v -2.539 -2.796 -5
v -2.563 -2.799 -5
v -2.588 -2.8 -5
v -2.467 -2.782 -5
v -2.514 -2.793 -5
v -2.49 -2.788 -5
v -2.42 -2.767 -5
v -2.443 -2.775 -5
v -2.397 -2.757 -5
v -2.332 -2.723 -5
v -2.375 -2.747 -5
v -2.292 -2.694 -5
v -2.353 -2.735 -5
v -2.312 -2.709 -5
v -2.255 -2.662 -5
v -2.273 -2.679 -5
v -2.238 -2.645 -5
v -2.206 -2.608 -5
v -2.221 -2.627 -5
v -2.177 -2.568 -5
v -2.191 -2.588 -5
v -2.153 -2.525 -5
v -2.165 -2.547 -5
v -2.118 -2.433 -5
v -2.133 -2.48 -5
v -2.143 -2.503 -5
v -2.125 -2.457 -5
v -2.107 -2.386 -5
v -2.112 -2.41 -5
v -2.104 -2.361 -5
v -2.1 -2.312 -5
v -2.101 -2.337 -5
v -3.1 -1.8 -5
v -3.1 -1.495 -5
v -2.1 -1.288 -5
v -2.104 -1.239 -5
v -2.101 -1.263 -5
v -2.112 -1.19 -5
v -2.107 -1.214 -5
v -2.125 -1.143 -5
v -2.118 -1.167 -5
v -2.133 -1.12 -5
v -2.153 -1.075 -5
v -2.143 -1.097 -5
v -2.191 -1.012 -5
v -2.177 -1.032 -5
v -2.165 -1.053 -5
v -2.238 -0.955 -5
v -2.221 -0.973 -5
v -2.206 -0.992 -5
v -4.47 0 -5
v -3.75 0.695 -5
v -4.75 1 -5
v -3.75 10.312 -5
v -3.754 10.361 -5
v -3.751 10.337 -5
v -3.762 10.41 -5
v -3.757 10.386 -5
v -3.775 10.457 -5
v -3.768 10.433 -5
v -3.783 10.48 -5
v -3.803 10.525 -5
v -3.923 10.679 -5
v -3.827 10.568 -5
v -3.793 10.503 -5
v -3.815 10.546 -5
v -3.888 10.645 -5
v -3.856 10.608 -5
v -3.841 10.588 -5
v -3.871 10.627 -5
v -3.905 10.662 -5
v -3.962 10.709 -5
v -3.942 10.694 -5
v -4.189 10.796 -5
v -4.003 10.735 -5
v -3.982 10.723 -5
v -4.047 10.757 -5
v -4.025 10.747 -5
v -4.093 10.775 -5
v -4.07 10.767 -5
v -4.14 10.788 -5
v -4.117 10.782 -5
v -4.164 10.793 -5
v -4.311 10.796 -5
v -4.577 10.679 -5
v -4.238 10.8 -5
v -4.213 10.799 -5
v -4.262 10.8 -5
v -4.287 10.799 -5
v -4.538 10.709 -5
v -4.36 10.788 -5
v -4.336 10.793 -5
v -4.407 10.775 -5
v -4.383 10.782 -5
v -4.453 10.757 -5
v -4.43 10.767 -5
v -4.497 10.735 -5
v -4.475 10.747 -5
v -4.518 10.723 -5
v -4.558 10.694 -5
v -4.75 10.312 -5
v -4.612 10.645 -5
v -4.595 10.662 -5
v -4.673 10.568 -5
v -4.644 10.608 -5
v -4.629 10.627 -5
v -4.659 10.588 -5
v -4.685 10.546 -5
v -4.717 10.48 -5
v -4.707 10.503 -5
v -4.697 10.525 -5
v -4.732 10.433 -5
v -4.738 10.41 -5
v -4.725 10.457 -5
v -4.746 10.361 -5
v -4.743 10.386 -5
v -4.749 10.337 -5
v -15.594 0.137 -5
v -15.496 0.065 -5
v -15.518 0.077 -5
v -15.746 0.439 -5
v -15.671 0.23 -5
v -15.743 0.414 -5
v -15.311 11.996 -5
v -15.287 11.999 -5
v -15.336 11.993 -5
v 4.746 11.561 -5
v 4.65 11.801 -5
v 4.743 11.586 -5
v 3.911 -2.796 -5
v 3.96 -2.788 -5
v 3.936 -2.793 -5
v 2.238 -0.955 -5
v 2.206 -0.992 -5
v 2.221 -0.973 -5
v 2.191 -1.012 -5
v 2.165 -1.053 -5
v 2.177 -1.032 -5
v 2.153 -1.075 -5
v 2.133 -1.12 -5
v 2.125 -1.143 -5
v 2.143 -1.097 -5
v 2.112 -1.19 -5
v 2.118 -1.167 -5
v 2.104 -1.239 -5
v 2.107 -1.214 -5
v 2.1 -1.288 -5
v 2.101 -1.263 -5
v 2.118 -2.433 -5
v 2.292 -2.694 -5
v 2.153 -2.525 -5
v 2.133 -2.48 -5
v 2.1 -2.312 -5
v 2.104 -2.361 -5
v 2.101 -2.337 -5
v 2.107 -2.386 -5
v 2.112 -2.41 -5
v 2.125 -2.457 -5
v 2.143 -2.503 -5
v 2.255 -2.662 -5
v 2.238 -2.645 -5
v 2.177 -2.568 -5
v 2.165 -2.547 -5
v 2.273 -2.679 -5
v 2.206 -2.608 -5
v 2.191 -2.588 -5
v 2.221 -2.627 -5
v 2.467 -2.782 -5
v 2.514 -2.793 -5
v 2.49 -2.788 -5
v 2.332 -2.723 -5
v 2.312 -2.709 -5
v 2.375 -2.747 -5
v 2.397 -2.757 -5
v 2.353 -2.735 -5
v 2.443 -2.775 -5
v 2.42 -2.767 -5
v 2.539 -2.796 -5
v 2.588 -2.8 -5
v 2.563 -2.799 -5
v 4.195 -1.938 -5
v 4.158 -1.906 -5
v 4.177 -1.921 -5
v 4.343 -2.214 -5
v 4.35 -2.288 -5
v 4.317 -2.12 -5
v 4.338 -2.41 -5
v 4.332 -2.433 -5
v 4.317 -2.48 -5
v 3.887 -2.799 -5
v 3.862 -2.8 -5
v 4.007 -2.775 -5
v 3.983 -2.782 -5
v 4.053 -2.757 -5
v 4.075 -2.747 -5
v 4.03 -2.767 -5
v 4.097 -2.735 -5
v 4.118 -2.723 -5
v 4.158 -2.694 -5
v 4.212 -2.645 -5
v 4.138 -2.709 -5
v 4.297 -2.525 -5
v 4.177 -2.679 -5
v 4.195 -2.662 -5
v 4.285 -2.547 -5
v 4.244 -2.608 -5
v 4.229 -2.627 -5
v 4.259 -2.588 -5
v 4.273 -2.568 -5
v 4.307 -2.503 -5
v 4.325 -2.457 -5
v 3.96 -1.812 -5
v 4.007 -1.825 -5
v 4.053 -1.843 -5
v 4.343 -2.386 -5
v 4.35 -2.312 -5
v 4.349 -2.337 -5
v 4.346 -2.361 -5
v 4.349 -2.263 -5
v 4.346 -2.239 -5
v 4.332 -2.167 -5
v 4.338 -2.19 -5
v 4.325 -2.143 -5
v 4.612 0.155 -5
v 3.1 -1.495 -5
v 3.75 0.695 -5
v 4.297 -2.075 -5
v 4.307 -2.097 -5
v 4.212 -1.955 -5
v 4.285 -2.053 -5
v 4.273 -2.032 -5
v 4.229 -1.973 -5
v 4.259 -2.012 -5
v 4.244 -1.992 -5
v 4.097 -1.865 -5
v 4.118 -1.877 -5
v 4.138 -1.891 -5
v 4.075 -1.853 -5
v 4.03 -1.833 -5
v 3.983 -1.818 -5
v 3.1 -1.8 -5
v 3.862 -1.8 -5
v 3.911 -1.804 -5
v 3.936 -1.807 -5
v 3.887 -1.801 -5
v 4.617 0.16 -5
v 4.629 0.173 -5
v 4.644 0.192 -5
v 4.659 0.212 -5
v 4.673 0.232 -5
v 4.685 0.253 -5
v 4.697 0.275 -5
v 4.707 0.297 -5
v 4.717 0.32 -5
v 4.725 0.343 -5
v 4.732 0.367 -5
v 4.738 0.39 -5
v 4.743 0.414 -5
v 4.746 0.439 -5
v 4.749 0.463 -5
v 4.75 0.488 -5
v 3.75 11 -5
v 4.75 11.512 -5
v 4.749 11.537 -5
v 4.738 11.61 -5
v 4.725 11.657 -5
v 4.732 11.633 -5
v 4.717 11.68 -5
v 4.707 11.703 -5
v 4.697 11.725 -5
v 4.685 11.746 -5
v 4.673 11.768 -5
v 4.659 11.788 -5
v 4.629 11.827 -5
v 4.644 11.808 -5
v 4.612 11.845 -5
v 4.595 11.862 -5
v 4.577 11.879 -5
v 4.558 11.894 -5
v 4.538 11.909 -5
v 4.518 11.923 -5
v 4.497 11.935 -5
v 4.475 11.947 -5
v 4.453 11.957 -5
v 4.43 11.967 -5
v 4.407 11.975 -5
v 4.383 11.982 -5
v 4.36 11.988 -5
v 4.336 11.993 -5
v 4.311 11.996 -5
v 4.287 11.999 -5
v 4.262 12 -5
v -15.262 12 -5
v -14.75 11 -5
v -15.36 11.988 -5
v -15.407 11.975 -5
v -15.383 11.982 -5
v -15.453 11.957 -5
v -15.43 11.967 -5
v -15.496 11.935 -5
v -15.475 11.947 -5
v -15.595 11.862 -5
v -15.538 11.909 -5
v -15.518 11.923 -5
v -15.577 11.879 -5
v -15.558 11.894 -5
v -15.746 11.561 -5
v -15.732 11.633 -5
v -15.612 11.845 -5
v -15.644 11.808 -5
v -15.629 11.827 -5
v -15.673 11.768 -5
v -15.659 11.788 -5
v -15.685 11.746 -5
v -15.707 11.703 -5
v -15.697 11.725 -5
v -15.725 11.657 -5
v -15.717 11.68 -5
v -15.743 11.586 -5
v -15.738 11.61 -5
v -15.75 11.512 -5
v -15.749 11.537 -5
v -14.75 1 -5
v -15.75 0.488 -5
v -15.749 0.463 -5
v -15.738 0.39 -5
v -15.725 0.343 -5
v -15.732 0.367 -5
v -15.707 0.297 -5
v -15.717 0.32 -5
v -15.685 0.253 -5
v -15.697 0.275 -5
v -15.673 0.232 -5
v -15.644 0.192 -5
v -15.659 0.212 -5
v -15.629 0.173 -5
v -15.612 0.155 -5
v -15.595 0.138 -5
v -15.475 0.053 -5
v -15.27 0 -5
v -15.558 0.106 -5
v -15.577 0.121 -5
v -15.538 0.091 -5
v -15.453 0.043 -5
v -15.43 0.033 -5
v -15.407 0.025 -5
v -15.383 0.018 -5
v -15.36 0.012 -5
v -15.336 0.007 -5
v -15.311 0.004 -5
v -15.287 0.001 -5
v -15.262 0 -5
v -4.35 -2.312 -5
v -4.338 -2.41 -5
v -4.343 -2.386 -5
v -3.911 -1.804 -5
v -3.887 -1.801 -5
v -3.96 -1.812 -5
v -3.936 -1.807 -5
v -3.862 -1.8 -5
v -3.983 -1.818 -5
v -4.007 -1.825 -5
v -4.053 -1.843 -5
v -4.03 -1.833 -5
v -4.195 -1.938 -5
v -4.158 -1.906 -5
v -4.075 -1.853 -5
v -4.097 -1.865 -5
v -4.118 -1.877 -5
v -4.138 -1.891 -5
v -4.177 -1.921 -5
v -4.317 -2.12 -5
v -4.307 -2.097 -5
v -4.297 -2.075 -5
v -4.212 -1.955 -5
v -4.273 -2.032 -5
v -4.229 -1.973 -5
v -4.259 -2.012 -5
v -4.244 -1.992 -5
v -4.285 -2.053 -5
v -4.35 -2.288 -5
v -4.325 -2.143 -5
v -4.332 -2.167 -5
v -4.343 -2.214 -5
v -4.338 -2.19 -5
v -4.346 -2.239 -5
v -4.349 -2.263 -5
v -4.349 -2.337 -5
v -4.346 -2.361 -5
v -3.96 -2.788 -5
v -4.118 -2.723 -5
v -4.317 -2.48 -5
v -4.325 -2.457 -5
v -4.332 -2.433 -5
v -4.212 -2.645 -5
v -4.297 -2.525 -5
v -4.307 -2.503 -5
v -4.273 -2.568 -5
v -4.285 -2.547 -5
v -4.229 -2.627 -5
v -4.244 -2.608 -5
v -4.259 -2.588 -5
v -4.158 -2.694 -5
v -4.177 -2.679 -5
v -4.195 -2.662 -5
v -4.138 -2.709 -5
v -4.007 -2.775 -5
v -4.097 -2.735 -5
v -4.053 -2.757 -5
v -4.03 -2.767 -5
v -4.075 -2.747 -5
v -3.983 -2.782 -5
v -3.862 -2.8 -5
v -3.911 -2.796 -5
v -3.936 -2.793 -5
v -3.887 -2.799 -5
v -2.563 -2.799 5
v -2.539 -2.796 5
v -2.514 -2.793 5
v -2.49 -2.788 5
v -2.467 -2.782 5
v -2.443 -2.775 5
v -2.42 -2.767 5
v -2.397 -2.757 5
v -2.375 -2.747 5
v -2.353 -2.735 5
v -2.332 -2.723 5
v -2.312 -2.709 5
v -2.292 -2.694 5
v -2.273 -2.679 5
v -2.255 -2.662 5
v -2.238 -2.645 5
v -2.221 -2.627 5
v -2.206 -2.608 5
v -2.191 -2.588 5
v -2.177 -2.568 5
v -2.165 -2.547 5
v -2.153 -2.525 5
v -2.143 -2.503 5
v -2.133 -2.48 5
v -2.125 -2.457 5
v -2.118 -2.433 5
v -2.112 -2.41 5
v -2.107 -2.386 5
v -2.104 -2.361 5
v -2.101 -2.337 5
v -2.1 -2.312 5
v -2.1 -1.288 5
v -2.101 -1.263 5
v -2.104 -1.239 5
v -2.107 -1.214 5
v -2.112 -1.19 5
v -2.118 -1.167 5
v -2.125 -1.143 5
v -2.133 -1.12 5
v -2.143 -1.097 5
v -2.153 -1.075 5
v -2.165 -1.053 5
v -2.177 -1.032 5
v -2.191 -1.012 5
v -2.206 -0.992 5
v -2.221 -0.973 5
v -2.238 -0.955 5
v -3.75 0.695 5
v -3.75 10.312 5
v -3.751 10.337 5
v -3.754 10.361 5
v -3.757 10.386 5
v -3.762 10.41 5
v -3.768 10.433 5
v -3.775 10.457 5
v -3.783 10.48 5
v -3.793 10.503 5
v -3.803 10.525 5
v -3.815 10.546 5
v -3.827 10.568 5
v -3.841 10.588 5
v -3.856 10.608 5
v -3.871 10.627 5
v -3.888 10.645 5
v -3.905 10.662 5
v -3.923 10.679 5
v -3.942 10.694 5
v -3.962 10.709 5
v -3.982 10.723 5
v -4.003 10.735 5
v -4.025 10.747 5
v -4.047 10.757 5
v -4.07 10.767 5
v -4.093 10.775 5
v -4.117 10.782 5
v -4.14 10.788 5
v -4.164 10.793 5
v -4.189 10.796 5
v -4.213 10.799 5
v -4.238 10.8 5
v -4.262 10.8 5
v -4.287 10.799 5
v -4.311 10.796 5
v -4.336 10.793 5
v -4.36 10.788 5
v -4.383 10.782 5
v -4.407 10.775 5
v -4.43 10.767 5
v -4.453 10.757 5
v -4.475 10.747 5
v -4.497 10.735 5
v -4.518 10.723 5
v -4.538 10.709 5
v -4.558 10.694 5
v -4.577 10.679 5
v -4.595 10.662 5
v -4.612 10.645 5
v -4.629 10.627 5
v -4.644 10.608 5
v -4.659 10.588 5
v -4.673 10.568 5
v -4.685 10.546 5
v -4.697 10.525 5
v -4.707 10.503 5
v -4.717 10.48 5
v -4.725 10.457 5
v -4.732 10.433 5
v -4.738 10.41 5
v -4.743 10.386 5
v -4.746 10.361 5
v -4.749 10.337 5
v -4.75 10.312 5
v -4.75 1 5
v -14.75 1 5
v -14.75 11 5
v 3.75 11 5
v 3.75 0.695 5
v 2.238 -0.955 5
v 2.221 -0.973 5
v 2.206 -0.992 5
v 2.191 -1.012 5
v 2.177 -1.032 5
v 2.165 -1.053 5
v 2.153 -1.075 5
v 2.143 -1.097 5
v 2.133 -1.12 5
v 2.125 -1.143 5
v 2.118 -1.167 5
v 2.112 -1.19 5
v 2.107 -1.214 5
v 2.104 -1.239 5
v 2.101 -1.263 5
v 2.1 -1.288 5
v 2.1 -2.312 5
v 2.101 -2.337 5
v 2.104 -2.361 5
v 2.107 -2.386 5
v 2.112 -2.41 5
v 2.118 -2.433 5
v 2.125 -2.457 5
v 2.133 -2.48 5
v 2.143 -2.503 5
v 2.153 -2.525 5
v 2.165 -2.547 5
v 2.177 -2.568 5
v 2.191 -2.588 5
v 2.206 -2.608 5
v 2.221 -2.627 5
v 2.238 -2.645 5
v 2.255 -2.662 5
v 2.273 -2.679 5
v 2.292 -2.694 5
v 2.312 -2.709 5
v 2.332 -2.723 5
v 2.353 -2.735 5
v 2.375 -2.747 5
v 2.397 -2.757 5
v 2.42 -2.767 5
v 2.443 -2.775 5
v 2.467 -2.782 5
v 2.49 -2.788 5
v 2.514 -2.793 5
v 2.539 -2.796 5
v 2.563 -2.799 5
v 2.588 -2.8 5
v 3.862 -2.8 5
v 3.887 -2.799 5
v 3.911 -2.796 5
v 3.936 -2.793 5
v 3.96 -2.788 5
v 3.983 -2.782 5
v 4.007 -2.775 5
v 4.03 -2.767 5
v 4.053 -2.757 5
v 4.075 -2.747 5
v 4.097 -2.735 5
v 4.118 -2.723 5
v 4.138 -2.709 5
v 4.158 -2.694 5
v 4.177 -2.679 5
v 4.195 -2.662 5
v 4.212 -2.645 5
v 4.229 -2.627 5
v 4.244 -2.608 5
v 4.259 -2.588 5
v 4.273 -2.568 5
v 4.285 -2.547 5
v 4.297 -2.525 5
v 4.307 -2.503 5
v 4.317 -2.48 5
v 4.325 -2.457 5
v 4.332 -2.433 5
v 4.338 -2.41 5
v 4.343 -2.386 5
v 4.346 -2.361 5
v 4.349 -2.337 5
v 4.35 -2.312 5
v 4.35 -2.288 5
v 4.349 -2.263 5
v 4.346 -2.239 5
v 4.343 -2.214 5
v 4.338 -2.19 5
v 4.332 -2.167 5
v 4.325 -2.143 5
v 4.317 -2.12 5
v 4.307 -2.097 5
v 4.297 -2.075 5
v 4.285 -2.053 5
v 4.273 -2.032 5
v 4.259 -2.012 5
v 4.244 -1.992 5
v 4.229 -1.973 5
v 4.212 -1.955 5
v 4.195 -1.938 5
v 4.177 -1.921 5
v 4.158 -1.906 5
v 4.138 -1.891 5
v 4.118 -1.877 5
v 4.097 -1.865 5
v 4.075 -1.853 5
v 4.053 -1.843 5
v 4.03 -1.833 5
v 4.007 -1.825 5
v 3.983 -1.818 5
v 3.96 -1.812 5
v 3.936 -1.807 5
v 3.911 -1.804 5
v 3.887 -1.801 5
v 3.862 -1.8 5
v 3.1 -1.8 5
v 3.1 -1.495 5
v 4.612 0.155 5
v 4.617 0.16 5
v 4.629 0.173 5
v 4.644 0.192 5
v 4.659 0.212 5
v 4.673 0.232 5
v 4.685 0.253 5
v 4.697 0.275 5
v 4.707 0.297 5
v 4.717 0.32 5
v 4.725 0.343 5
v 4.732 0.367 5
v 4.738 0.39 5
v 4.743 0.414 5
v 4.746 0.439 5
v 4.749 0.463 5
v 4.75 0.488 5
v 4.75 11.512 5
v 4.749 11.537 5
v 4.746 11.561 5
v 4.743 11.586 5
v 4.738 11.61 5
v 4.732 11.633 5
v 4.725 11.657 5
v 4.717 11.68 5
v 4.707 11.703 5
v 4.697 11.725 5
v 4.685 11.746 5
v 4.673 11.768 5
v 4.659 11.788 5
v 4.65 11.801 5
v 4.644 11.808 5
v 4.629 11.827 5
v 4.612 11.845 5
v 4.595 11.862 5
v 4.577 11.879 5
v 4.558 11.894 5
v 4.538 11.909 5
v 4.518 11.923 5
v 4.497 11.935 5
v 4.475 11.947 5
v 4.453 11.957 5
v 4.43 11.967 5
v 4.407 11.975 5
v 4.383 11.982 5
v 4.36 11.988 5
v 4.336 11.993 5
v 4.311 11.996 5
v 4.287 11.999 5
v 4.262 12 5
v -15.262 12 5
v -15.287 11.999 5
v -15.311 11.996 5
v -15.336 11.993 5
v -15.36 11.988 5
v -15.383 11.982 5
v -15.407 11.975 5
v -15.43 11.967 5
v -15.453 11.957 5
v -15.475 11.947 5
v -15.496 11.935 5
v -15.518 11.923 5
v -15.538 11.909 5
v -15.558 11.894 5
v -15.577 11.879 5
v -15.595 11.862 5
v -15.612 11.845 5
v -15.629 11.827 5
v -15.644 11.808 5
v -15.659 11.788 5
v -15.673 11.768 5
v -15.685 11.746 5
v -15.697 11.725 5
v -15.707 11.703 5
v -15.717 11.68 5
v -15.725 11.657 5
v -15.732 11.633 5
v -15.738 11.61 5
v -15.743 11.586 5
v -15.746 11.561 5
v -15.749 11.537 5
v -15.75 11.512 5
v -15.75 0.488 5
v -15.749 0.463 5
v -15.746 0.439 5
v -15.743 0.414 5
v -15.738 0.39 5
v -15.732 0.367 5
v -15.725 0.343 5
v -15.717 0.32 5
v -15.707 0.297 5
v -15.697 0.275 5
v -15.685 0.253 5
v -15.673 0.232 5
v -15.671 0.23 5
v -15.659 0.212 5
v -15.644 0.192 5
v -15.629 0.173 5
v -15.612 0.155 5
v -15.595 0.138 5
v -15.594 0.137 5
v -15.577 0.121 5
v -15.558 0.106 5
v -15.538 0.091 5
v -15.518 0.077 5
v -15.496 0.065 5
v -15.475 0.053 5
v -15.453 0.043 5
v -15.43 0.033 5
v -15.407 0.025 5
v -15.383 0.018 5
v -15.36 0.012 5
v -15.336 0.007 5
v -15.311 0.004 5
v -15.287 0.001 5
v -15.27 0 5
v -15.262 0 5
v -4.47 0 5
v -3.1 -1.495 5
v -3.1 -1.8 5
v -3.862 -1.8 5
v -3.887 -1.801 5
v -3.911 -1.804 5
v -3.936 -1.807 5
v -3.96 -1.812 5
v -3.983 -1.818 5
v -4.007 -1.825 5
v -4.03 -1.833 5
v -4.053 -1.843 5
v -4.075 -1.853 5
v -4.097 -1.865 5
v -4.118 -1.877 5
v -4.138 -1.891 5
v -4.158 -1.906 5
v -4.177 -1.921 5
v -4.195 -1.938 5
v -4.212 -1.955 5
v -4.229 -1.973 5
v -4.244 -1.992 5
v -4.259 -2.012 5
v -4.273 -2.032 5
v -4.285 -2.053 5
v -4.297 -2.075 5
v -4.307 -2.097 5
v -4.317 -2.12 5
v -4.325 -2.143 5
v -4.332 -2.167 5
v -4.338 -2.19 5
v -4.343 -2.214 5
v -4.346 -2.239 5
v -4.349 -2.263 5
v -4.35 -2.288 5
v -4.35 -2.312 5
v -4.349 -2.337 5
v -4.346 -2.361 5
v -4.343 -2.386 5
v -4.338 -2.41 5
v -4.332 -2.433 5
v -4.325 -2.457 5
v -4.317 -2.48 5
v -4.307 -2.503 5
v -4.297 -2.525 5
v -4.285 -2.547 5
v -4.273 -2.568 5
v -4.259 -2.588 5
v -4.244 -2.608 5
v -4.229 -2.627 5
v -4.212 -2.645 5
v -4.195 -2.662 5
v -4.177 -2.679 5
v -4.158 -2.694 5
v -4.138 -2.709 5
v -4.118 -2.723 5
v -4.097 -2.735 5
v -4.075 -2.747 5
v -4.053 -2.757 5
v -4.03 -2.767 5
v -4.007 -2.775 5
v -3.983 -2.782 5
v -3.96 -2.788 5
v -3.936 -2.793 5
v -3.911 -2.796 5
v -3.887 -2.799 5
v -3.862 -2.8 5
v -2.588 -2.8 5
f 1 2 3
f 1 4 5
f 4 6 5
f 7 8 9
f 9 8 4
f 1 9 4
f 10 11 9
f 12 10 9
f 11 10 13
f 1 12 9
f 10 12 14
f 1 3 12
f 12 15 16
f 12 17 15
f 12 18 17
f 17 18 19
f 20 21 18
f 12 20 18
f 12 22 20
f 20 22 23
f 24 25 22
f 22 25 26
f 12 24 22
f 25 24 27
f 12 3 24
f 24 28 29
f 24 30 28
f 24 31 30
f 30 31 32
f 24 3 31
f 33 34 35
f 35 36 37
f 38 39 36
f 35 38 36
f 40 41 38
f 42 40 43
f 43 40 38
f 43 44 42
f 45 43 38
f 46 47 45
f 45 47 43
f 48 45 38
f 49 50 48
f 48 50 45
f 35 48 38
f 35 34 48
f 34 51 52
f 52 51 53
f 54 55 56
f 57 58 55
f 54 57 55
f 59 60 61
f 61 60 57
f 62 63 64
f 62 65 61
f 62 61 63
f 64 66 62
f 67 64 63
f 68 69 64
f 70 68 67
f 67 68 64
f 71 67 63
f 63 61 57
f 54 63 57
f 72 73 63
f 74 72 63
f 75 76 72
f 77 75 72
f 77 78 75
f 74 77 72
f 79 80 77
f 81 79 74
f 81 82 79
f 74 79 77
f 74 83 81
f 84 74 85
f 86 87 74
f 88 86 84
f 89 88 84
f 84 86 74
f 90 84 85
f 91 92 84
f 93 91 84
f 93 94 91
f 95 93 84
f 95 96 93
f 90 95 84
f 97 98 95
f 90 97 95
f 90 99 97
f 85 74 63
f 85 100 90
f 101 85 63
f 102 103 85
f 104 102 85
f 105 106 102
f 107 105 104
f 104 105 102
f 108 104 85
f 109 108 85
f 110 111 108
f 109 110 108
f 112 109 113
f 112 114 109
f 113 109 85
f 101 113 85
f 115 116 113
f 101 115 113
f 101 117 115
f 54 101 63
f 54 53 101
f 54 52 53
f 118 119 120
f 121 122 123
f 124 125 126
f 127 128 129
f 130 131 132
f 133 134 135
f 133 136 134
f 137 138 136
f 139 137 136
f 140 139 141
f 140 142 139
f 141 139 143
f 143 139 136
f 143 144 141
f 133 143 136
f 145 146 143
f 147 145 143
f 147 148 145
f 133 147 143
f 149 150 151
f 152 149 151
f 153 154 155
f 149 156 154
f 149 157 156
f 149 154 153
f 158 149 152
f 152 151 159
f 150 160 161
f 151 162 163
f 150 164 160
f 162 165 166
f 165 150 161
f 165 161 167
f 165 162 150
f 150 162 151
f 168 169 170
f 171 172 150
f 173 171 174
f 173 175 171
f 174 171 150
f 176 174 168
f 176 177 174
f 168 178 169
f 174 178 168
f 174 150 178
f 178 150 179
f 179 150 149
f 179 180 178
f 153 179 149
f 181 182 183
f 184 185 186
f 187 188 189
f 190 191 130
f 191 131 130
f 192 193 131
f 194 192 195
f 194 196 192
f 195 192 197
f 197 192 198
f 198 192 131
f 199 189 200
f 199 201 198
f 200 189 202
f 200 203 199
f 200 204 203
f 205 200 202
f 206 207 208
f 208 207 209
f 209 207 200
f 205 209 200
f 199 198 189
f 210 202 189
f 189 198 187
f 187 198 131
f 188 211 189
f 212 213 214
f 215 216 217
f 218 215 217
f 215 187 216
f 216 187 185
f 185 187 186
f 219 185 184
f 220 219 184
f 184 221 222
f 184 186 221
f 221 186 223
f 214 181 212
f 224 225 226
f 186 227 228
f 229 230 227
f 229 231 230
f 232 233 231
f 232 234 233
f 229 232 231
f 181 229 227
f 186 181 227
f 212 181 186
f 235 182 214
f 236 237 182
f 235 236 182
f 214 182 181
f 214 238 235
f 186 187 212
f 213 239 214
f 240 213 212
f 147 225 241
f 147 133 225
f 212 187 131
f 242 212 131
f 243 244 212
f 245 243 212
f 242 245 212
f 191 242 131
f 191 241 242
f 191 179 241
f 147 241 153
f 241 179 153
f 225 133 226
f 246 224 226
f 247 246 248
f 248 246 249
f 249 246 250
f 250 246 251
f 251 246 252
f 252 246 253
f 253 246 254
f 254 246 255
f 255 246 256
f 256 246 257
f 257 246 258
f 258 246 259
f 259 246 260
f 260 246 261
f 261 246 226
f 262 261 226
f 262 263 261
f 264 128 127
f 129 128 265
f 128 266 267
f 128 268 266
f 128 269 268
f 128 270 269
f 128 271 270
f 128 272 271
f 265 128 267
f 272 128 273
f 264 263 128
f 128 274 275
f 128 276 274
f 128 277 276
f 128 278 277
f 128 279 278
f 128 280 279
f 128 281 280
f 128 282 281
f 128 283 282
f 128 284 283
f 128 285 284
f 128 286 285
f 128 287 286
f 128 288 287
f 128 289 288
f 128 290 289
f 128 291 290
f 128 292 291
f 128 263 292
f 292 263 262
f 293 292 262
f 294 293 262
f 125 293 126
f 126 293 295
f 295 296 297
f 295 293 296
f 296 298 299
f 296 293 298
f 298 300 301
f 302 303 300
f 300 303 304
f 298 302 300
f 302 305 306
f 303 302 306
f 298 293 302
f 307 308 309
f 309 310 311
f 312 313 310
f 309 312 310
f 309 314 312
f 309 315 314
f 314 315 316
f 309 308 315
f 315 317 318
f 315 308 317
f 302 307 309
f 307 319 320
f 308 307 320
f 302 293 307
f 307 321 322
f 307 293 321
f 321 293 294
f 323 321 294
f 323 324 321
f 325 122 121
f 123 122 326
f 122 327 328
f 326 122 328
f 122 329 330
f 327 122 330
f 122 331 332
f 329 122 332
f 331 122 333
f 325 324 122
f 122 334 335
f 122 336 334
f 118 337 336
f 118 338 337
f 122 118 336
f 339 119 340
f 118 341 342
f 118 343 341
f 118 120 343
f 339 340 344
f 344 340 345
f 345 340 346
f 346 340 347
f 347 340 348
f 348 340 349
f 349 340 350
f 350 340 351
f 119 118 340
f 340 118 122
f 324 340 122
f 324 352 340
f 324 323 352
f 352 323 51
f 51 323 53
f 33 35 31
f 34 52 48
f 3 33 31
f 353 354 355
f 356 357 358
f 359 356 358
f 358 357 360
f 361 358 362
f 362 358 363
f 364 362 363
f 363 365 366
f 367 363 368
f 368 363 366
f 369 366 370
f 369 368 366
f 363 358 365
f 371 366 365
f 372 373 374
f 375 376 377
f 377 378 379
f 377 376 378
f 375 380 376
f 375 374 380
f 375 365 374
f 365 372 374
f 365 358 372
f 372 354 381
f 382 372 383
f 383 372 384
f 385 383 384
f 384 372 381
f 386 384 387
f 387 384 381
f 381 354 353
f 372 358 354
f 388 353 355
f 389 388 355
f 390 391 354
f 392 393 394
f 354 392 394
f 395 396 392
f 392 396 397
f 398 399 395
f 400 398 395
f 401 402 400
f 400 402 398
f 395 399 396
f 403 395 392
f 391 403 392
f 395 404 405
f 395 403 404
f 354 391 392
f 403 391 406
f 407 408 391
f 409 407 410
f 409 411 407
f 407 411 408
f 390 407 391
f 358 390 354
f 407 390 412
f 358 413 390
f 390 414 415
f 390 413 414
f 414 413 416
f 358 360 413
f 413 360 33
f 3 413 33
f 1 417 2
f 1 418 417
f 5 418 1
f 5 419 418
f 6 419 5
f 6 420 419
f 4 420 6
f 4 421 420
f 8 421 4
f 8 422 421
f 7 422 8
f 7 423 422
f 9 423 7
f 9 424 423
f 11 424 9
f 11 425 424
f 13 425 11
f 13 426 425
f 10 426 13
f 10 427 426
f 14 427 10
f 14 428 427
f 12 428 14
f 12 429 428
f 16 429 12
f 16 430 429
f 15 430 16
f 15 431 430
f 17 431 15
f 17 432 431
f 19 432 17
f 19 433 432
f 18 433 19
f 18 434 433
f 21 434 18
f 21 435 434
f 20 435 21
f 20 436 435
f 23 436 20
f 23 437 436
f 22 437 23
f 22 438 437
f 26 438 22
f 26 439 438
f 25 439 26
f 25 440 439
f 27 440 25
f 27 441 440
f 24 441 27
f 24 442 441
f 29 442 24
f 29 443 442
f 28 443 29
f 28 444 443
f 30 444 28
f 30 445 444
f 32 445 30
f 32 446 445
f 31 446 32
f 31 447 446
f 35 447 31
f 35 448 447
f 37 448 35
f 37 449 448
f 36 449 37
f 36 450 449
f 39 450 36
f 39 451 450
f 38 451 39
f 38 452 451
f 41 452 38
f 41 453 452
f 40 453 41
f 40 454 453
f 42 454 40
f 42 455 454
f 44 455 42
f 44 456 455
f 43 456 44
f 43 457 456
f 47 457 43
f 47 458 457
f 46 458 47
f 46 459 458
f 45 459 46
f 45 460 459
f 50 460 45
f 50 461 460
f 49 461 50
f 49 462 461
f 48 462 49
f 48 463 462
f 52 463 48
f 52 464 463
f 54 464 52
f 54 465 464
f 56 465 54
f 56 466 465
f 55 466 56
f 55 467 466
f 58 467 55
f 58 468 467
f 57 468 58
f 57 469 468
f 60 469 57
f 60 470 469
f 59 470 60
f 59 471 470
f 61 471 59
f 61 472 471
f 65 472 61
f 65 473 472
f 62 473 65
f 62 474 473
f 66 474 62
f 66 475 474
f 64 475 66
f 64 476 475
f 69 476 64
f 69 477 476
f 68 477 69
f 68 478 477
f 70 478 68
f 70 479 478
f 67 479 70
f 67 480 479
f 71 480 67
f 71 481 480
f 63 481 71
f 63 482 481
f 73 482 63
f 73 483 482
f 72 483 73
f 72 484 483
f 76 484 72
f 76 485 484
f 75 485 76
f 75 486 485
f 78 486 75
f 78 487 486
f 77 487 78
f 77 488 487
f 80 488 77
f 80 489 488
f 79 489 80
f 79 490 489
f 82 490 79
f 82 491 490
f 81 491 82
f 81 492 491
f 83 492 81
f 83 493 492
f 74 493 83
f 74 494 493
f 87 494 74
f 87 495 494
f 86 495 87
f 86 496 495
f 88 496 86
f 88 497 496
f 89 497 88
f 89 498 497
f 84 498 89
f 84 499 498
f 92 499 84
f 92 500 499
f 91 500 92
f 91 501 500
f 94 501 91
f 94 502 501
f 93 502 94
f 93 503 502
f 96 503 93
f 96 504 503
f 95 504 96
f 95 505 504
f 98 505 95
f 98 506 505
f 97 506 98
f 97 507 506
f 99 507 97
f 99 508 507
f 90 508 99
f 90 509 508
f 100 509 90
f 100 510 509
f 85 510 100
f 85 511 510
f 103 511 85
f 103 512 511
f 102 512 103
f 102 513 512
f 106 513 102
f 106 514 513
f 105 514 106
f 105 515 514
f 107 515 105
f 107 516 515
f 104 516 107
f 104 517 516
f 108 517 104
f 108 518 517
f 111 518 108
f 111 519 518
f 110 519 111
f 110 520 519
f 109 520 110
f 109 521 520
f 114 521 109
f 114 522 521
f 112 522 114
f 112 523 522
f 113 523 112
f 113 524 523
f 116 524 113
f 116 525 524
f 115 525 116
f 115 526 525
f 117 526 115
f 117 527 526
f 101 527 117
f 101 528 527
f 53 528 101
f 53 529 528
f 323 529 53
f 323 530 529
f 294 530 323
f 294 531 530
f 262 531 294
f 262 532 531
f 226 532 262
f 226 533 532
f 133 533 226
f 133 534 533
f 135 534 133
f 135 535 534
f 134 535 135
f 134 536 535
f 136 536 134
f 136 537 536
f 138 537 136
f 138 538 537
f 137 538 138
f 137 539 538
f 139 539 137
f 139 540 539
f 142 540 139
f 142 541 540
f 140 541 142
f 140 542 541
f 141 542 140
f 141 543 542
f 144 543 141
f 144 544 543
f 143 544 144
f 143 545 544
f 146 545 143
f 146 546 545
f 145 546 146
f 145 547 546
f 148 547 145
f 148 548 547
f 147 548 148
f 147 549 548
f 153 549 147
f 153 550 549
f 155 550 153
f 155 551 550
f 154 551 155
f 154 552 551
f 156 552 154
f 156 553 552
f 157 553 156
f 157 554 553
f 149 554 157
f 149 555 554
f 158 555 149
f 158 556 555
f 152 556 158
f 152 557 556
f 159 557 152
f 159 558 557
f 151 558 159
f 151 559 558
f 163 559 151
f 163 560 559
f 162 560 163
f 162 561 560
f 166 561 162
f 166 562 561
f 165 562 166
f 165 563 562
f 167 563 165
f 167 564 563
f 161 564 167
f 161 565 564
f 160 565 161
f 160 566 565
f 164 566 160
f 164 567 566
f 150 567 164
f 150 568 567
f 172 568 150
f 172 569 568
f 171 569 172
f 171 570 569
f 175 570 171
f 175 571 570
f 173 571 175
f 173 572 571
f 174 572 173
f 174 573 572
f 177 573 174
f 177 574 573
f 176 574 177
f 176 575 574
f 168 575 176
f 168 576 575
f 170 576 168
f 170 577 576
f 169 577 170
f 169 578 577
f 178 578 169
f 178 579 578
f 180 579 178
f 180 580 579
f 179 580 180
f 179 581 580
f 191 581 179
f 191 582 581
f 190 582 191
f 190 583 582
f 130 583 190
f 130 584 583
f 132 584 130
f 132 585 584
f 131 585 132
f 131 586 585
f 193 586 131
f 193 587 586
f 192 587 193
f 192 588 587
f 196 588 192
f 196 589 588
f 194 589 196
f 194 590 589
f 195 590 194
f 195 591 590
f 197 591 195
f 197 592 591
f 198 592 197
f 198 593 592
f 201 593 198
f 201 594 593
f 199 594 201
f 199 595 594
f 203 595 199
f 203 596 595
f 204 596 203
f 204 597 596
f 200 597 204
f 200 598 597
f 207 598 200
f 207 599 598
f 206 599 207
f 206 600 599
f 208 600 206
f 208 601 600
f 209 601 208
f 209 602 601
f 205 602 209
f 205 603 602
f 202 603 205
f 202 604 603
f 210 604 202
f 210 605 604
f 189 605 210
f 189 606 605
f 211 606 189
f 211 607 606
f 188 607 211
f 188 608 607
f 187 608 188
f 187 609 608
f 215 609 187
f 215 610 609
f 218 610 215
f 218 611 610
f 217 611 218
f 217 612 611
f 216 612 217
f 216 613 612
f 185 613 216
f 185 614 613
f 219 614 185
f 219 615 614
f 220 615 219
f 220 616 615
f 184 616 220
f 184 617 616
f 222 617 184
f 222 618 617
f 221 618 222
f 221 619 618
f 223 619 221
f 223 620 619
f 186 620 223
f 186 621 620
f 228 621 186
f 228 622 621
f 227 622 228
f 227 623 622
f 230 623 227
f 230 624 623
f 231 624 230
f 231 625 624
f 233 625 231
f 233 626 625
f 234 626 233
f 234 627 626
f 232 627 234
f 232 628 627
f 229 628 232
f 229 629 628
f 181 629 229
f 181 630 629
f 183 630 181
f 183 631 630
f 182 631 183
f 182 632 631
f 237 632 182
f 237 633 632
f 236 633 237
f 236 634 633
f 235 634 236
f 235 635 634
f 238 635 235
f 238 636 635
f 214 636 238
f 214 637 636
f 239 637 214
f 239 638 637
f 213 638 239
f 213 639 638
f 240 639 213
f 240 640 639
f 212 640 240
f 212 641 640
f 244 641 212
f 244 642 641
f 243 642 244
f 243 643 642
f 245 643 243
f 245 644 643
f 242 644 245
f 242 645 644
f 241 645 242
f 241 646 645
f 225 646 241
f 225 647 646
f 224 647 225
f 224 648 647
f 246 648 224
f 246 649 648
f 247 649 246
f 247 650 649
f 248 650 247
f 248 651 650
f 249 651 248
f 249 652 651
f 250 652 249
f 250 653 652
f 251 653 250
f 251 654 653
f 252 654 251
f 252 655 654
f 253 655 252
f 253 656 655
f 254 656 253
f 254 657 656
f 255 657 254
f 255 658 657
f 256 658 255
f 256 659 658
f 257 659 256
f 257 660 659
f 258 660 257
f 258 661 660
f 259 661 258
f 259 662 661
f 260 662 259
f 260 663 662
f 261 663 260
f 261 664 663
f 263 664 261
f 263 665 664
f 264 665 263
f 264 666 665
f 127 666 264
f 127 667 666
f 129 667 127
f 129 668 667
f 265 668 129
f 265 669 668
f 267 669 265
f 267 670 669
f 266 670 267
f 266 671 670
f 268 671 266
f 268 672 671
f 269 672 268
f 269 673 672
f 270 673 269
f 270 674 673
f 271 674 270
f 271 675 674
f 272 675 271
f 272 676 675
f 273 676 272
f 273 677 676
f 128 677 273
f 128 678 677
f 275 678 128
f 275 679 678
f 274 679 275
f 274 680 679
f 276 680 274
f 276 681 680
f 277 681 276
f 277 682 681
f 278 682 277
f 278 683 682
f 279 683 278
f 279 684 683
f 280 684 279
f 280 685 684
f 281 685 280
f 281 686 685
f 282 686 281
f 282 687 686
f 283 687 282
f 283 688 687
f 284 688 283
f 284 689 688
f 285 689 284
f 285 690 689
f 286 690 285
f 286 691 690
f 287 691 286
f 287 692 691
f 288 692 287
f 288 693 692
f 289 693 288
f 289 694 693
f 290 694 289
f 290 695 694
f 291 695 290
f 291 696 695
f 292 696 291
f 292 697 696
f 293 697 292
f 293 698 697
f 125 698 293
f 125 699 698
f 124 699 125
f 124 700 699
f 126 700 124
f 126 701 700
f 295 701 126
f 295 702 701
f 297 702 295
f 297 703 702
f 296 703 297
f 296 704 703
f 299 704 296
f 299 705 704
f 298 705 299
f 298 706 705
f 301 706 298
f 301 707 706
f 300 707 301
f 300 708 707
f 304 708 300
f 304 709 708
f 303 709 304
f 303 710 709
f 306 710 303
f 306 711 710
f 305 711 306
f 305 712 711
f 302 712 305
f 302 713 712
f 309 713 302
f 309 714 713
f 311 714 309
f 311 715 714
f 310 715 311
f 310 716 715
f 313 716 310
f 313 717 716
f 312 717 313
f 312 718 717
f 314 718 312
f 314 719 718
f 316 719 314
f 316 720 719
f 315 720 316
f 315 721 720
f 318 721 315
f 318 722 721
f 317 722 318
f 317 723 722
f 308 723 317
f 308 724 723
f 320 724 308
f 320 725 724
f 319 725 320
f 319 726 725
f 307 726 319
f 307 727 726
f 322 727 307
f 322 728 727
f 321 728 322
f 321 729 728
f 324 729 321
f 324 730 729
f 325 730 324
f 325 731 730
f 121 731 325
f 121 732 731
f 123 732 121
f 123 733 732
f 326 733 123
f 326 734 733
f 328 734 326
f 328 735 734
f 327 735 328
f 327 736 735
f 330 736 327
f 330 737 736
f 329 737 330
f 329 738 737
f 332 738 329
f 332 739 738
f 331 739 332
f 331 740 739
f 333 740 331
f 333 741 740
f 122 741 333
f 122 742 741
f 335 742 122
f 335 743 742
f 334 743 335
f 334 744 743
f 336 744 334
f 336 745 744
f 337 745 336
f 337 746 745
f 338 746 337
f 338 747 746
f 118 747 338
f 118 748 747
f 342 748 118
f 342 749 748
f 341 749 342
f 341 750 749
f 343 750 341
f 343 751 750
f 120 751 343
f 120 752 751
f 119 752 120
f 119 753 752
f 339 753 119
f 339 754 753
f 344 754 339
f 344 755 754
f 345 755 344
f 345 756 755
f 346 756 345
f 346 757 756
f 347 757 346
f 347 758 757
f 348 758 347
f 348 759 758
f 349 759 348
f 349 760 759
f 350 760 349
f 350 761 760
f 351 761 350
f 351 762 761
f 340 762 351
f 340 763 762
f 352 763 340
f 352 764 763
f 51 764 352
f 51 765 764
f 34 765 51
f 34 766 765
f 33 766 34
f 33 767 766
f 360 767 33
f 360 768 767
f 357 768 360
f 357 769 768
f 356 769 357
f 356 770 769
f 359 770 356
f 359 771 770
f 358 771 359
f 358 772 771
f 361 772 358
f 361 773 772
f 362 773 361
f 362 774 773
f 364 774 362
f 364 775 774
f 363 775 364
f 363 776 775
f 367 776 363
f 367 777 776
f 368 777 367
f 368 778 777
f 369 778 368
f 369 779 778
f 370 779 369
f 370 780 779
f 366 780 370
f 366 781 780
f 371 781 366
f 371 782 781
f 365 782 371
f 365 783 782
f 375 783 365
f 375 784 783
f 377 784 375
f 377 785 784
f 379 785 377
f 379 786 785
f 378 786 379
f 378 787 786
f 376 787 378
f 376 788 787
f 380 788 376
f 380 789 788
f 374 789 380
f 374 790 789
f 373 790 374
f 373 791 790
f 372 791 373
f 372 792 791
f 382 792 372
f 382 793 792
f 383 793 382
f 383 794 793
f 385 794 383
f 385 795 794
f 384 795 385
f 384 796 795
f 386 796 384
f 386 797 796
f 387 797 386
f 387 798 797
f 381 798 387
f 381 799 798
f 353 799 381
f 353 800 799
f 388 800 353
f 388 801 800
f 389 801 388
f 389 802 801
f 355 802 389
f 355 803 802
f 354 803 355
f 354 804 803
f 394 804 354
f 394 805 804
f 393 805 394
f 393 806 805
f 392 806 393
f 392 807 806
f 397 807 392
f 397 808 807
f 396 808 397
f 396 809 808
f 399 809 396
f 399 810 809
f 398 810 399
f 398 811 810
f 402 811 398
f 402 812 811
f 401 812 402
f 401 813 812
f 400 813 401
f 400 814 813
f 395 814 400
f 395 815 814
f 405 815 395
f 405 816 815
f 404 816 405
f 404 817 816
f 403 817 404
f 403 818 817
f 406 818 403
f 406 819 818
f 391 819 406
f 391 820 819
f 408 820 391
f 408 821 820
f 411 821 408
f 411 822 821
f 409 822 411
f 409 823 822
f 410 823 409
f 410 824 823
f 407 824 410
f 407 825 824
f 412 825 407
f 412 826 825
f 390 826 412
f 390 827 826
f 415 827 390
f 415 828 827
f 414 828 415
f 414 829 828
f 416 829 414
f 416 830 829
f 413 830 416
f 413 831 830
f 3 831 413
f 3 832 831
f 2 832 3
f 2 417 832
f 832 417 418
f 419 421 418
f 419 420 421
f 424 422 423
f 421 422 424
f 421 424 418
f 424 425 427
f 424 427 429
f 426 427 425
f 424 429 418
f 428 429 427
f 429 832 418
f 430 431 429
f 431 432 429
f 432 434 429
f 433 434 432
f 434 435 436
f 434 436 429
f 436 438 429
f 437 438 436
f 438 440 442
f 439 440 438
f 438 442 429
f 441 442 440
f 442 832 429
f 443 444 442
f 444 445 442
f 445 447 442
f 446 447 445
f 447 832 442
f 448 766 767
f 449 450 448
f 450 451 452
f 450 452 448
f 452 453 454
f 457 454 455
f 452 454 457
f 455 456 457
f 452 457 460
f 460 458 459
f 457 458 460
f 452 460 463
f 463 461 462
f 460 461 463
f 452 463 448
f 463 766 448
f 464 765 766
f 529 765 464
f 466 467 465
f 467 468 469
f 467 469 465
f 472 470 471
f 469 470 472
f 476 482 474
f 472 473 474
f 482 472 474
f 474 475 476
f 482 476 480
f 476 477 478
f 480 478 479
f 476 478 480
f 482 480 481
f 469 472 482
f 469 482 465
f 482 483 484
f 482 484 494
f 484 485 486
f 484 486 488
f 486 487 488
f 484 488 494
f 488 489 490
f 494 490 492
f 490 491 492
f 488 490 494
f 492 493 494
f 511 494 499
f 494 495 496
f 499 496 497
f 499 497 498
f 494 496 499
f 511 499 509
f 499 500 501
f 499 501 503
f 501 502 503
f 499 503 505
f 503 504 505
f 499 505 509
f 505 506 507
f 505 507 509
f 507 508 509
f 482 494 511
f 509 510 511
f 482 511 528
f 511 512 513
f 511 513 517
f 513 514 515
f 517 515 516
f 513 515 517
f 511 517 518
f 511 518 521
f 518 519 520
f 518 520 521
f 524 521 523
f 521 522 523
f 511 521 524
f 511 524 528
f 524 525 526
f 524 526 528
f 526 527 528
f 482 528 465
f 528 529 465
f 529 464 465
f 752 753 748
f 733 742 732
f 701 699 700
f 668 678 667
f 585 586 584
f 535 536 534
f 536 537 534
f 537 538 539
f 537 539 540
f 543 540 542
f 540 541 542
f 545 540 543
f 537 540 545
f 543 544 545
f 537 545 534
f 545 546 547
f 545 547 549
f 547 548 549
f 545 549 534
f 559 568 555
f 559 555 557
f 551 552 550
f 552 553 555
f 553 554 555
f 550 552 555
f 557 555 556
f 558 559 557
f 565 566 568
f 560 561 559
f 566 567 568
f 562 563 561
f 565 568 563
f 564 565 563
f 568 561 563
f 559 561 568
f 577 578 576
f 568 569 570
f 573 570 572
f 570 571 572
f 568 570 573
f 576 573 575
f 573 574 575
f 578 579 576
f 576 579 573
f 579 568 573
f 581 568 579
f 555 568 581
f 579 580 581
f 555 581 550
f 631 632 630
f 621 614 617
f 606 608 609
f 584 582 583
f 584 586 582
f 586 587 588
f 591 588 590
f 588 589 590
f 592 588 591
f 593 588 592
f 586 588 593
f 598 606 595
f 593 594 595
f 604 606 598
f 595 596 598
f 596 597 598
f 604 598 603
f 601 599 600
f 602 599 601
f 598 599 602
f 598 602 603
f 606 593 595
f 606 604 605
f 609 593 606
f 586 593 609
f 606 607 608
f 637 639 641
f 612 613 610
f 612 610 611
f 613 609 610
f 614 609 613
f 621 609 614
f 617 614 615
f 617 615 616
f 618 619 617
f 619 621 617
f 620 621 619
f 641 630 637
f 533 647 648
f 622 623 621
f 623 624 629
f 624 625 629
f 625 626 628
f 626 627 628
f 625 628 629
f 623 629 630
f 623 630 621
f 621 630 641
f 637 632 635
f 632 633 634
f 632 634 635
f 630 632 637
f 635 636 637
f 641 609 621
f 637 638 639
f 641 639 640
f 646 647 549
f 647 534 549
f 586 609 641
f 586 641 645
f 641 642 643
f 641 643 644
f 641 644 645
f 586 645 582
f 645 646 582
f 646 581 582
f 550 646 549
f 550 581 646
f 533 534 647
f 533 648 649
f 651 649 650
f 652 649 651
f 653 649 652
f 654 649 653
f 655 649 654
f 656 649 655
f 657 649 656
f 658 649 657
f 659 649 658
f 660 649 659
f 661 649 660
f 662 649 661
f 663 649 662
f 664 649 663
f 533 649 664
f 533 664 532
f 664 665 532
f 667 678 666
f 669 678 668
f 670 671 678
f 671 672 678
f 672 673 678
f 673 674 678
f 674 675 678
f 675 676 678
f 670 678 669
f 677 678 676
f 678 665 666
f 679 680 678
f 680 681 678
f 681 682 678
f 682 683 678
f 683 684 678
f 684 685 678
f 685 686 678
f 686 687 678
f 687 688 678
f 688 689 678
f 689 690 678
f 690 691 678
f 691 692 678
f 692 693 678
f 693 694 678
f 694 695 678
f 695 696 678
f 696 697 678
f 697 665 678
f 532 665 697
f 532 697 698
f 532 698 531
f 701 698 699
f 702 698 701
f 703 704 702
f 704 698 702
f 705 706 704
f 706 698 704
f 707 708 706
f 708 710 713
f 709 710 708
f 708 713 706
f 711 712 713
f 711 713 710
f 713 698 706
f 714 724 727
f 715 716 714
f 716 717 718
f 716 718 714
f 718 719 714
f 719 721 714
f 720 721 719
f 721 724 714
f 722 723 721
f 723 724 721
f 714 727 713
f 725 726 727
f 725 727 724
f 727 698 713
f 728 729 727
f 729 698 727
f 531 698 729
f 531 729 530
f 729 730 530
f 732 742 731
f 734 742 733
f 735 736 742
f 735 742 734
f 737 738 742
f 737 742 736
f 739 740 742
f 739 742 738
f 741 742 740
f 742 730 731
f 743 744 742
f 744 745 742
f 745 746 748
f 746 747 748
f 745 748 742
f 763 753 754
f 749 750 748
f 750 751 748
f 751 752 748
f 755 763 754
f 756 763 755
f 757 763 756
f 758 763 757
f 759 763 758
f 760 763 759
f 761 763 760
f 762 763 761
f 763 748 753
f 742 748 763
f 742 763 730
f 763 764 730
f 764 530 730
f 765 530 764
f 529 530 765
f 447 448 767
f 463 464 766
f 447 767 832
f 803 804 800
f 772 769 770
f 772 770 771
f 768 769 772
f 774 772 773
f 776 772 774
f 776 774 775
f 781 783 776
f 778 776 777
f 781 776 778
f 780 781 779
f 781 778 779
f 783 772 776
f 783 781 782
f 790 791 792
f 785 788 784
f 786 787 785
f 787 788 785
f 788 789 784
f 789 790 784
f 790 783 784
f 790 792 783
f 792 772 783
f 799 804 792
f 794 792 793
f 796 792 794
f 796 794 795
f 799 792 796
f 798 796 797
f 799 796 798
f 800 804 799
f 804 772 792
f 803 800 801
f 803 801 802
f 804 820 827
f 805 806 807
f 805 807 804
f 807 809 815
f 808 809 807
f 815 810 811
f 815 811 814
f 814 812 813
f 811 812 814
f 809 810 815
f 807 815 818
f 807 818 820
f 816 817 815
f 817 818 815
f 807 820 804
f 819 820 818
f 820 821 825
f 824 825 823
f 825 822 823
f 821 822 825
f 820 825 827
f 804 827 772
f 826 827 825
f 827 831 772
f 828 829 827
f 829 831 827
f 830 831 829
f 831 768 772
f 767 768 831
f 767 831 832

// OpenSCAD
// file: ../extrusion-clip.scad
include <lumpyscad/lib.scad>;

resolution = 128;
extrusion_width = 0.5;
wall_thickness = 1;
tolerance = 0.2;

module extrusion_clip_profile_arrow(opening_height = 4,opening_width = 8) {
  overall_height = opening_height+wall_thickness*2;
  overall_width = v_slot_opening+opening_width + wall_thickness;
  prong_length = v_slot_cavity_depth-tolerance*2;
  //length_behind_extrusion = (v_slot_opening_behind_slot_width-v_slot_opening)/2-tolerance;
  length_behind_extrusion = 1.75;
  echo("length_behind_extrusion: ", length_behind_extrusion);
  module body() {
    for(y=[front,rear]) {
      mirror([0,y-1,0]) {
        // angled retainer
        hull() {
          translate([0,v_slot_opening/2-wall_thickness/2,0]) {
            translate([-v_slot_cavity_depth+wall_thickness/2+tolerance,0,0]) {
              accurate_circle(wall_thickness,resolution);
            }
            translate([-v_slot_depth-wall_thickness/2-tolerance,0,0]) {
              accurate_circle(wall_thickness,resolution);
            }
          }
          translate([-v_slot_depth-wall_thickness/2-tolerance,v_slot_opening/2+length_behind_extrusion-wall_thickness/2,0]) {
            accurate_circle(wall_thickness,resolution);
          }
        }

        // retainer arms
        translate([-v_slot_depth,v_slot_opening/2-wall_thickness/2,0]) {
          square([v_slot_depth*2+0.1,wall_thickness],center=true);
        }
      }
    }

    // end cap

    // longer/outer arm & co
    translate([-wall_thickness+overall_height/2,-v_slot_opening/2+wall_thickness/2,0]) {
      rounded_square(overall_height+wall_thickness*2,wall_thickness,wall_thickness,resolution);
    }
    translate([overall_height-wall_thickness/2,-v_slot_opening/2+overall_width/2,0]) {
      rounded_square(wall_thickness,overall_width,wall_thickness,resolution);
    }

    // shorter/inner arm & co
    short_arm_length = opening_height+wall_thickness-tolerance;
    translate([-wall_thickness+short_arm_length/2,v_slot_opening/2-wall_thickness/2,0]) {
      rounded_square(short_arm_length+wall_thickness*2,wall_thickness,wall_thickness,resolution);
    }
    translate([wall_thickness/2,v_slot_opening/2+opening_width/2,0]) {
      rounded_square(wall_thickness,opening_width+wall_thickness*2,wall_thickness,resolution);
    }

    // end cap
    translate([overall_height/2,-v_slot_opening/2+overall_width-wall_thickness/2,0]) {
      rounded_square(overall_height,wall_thickness,wall_thickness,resolution);
    }
    /*
    translate([short_arm_length-wall_thickness/2,v_slot_opening/2+tolerance/2,0]) {
      rounded_square(wall_thickness,wall_thickness*2+tolerance,wall_thickness,resolution);
    }
    translate([short_arm_length/2,v_slot_opening/2+wall_thickness/2+tolerance,0]) {
      rounded_square(short_arm_length,wall_thickness,wall_thickness,resolution);
    }
    */

    hull() {
     
      
    }
  }

  module holes() {
    
  }
  
  difference() {
    body();
    holes();
  }
}

module extrusion_clip_profile_minimal(opening_height = 4,opening_width = 8) {
  overall_height = opening_height+wall_thickness*2;
  overall_width = v_slot_opening+opening_width + wall_thickness;
  prong_length = v_slot_cavity_depth-tolerance*2;
  //length_behind_extrusion = (v_slot_opening_behind_slot_width-v_slot_opening)/2-tolerance;
  length_behind_extrusion = 1.25;
  room_for_extrusion_sharp = 0;

  module body() {
    for(x=[left,right]) {
      mirror([x-1,0,0]) {
        translate([-v_slot_opening/2-length_behind_extrusion/2+wall_thickness/2,-v_slot_depth-wall_thickness/2,0]) {
          rounded_square(length_behind_extrusion+wall_thickness,wall_thickness,wall_thickness,resolution);
        }
        translate([-v_slot_opening/2+wall_thickness/2,-v_slot_depth+room_for_extrusion_sharp/2,0]) {
          rounded_square(wall_thickness,wall_thickness*2+room_for_extrusion_sharp,wall_thickness,resolution);
        }
        hull() {
          translate([-v_slot_opening/2+wall_thickness/2,-v_slot_depth+room_for_extrusion_sharp+wall_thickness/2,0]) {
            accurate_circle(wall_thickness,resolution);
          }
          translate([-v_slot_width/2+wall_thickness/2,wall_thickness/2,0]) {
            accurate_circle(wall_thickness,resolution);
          }
        }
      }
    }
  }

  module holes() {
    
  }
  
  difference() {
    body();
    holes();
  }
}

module extrusion_clip_wiring_holder(opening_height = 4,opening_width = 8) {
  overall_height = opening_height+wall_thickness*2;
  overall_width = v_slot_width+opening_width + wall_thickness;

  module body() {
    extrusion_clip_profile_minimal();

    /*
    translate([0,wall_thickness/2,0]) {
      difference() {
        accurate_circle(v_slot_width,resolution);
        accurate_circle(v_slot_width-wall_thickness*2,resolution);
        translate([0,-v_slot_width/2,0]) {
          square([v_slot_width*2,v_slot_width],center=true);
        }
      }
    }
    */

    guard_height = overall_height-wall_thickness-tolerance;
    translate([-v_slot_width/2+wall_thickness/2,guard_height/2,0]) {
      rounded_square(wall_thickness,guard_height,wall_thickness,resolution);
    }
    translate([-v_slot_width/2-opening_width/2,wall_thickness/2,0]) {
      rounded_square(opening_width+wall_thickness*2,wall_thickness,wall_thickness,resolution);
    }

    translate([v_slot_width/2-wall_thickness/2,overall_height/2,0]) {
      rounded_square(wall_thickness,overall_height,wall_thickness,resolution);
    }
    translate([v_slot_width/2-overall_width/2,overall_height-wall_thickness/2,0]) {
      rounded_square(overall_width,wall_thickness,wall_thickness,resolution);
    }

    translate([v_slot_width/2-overall_width+wall_thickness/2,overall_height/2,0]) {
      rounded_square(wall_thickness,overall_height,wall_thickness,resolution);
    }
  }

  module holes() {
  }

  difference() {
    body();
    holes();
  }
}

module extrusion_wiring_retainer() {
  module body() {
    extrusion_clip_profile_minimal();

    translate([0,wall_thickness/2,0]) {
      difference() {
        accurate_circle(v_slot_width,resolution);
        accurate_circle(v_slot_width-wall_thickness*2,resolution);
        translate([0,-v_slot_width/2,0]) {
          square([v_slot_width*2,v_slot_width],center=true);
        }
      }
    }
  }

  module holes() {
  }

  difference() {
    body();
    holes();
  }
}

% translate([0,-20/2,0]) {
  extrusion_2020_profile();
}

linear_extrude(height=0.1) {
  //extrusion_clip_profile_minimal();
  extrusion_clip_wiring_holder();
}

translate([-20/2,-20/2,0]) {
  rotate([0,0,90]) {
    linear_extrude(height=0.1) {
      extrusion_wiring_retainer();
    }
  }
}

translate([20/2,-20/2,0]) {
  color("grey", 0.1) {
    linear_extrude(height=0.1) {
      extrusion_clip_profile_arrow();
    }
  }
}
// main file
use <../extrusion-clip.scad>;

linear_extrude(height=10,center=true,convexity=3) {
  extrusion_clip_wiring_holder(10,10);
}
